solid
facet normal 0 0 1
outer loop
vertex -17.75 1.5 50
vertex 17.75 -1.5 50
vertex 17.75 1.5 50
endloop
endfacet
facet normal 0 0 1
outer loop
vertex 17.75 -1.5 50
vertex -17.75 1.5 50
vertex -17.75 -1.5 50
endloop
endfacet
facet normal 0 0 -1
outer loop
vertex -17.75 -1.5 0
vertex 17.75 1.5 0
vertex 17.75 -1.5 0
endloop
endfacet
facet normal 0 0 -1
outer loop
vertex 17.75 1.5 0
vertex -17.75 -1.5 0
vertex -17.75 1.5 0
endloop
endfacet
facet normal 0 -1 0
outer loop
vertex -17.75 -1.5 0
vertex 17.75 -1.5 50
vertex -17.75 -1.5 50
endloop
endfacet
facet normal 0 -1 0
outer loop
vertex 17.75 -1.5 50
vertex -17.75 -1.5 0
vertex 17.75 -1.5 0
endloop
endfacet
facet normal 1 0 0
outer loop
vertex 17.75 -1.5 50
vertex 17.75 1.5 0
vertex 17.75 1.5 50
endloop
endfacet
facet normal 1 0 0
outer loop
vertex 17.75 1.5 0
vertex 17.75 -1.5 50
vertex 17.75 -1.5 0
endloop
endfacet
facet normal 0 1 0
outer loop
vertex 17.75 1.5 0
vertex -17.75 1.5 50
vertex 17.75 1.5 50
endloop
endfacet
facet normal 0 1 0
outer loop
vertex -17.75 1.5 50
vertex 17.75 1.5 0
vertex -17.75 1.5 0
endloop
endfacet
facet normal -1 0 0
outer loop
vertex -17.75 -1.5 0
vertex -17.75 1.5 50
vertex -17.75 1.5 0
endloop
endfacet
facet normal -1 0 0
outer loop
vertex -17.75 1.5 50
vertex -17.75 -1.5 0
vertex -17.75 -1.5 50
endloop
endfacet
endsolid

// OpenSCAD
// file: Inlet.scad
$fn = 100;
tiny = 0.01;


/******************************************************
 * dx,dy: Maße, wie bei 'Boden' angegeben.
 *****************************************************/
module inlet_top_down(dx,dy) {
  h1 = 3;  
  dx1 = 5.9;
  dx2 = 4.0; // vier mal Fase an Ecken

  difference() {
     translate([0,0,h1/2]) cube([dx-2*dx1,dy-2*dx1,h1], true); 
     translate([+dx/2-dx1,+dy/2-dx1,h1/2-tiny]) rotate([0,0,45]) cube([dx2,dx2,h1+3*tiny], true);
     translate([+dx/2-dx1,-dy/2+dx1,h1/2-tiny]) rotate([0,0,45]) cube([dx2,dx2,h1+3*tiny], true);
     translate([-dx/2+dx1,+dy/2-dx1,h1/2-tiny]) rotate([0,0,45]) cube([dx2,dx2,h1+3*tiny], true);
     translate([-dx/2+dx1,-dy/2+dx1,h1/2-tiny]) rotate([0,0,45]) cube([dx2,dx2,h1+3*tiny], true);
     }
}


/******************************************************
 * dy: Maß, wie bei 'Boden' angegeben.
 * h:  Maß, wie bei 'Kante' angegeben.
 *****************************************************/
module inlet_front_back(h,dy) {
  h1 = 3;
  dy1 = 12+12.5;
  translate([0,0,h/2]) cube([h1,dy-dy1,h], true);
}


/******************************************************
 * dx: Maß, wie bei 'Boden' angegeben.
 * h:  Maß, wie bei 'Kante' angegeben.
 *****************************************************/
module inlet_left_right(h,dx) {
  h1 = 3;
  dx1 = 12+12.5;
  translate([0,0,h/2]) cube([dx-dx1,h1,h], true);
}
// main file
$fn = 100;

use <Inlet.scad>


inlet_left_right(50,60);
